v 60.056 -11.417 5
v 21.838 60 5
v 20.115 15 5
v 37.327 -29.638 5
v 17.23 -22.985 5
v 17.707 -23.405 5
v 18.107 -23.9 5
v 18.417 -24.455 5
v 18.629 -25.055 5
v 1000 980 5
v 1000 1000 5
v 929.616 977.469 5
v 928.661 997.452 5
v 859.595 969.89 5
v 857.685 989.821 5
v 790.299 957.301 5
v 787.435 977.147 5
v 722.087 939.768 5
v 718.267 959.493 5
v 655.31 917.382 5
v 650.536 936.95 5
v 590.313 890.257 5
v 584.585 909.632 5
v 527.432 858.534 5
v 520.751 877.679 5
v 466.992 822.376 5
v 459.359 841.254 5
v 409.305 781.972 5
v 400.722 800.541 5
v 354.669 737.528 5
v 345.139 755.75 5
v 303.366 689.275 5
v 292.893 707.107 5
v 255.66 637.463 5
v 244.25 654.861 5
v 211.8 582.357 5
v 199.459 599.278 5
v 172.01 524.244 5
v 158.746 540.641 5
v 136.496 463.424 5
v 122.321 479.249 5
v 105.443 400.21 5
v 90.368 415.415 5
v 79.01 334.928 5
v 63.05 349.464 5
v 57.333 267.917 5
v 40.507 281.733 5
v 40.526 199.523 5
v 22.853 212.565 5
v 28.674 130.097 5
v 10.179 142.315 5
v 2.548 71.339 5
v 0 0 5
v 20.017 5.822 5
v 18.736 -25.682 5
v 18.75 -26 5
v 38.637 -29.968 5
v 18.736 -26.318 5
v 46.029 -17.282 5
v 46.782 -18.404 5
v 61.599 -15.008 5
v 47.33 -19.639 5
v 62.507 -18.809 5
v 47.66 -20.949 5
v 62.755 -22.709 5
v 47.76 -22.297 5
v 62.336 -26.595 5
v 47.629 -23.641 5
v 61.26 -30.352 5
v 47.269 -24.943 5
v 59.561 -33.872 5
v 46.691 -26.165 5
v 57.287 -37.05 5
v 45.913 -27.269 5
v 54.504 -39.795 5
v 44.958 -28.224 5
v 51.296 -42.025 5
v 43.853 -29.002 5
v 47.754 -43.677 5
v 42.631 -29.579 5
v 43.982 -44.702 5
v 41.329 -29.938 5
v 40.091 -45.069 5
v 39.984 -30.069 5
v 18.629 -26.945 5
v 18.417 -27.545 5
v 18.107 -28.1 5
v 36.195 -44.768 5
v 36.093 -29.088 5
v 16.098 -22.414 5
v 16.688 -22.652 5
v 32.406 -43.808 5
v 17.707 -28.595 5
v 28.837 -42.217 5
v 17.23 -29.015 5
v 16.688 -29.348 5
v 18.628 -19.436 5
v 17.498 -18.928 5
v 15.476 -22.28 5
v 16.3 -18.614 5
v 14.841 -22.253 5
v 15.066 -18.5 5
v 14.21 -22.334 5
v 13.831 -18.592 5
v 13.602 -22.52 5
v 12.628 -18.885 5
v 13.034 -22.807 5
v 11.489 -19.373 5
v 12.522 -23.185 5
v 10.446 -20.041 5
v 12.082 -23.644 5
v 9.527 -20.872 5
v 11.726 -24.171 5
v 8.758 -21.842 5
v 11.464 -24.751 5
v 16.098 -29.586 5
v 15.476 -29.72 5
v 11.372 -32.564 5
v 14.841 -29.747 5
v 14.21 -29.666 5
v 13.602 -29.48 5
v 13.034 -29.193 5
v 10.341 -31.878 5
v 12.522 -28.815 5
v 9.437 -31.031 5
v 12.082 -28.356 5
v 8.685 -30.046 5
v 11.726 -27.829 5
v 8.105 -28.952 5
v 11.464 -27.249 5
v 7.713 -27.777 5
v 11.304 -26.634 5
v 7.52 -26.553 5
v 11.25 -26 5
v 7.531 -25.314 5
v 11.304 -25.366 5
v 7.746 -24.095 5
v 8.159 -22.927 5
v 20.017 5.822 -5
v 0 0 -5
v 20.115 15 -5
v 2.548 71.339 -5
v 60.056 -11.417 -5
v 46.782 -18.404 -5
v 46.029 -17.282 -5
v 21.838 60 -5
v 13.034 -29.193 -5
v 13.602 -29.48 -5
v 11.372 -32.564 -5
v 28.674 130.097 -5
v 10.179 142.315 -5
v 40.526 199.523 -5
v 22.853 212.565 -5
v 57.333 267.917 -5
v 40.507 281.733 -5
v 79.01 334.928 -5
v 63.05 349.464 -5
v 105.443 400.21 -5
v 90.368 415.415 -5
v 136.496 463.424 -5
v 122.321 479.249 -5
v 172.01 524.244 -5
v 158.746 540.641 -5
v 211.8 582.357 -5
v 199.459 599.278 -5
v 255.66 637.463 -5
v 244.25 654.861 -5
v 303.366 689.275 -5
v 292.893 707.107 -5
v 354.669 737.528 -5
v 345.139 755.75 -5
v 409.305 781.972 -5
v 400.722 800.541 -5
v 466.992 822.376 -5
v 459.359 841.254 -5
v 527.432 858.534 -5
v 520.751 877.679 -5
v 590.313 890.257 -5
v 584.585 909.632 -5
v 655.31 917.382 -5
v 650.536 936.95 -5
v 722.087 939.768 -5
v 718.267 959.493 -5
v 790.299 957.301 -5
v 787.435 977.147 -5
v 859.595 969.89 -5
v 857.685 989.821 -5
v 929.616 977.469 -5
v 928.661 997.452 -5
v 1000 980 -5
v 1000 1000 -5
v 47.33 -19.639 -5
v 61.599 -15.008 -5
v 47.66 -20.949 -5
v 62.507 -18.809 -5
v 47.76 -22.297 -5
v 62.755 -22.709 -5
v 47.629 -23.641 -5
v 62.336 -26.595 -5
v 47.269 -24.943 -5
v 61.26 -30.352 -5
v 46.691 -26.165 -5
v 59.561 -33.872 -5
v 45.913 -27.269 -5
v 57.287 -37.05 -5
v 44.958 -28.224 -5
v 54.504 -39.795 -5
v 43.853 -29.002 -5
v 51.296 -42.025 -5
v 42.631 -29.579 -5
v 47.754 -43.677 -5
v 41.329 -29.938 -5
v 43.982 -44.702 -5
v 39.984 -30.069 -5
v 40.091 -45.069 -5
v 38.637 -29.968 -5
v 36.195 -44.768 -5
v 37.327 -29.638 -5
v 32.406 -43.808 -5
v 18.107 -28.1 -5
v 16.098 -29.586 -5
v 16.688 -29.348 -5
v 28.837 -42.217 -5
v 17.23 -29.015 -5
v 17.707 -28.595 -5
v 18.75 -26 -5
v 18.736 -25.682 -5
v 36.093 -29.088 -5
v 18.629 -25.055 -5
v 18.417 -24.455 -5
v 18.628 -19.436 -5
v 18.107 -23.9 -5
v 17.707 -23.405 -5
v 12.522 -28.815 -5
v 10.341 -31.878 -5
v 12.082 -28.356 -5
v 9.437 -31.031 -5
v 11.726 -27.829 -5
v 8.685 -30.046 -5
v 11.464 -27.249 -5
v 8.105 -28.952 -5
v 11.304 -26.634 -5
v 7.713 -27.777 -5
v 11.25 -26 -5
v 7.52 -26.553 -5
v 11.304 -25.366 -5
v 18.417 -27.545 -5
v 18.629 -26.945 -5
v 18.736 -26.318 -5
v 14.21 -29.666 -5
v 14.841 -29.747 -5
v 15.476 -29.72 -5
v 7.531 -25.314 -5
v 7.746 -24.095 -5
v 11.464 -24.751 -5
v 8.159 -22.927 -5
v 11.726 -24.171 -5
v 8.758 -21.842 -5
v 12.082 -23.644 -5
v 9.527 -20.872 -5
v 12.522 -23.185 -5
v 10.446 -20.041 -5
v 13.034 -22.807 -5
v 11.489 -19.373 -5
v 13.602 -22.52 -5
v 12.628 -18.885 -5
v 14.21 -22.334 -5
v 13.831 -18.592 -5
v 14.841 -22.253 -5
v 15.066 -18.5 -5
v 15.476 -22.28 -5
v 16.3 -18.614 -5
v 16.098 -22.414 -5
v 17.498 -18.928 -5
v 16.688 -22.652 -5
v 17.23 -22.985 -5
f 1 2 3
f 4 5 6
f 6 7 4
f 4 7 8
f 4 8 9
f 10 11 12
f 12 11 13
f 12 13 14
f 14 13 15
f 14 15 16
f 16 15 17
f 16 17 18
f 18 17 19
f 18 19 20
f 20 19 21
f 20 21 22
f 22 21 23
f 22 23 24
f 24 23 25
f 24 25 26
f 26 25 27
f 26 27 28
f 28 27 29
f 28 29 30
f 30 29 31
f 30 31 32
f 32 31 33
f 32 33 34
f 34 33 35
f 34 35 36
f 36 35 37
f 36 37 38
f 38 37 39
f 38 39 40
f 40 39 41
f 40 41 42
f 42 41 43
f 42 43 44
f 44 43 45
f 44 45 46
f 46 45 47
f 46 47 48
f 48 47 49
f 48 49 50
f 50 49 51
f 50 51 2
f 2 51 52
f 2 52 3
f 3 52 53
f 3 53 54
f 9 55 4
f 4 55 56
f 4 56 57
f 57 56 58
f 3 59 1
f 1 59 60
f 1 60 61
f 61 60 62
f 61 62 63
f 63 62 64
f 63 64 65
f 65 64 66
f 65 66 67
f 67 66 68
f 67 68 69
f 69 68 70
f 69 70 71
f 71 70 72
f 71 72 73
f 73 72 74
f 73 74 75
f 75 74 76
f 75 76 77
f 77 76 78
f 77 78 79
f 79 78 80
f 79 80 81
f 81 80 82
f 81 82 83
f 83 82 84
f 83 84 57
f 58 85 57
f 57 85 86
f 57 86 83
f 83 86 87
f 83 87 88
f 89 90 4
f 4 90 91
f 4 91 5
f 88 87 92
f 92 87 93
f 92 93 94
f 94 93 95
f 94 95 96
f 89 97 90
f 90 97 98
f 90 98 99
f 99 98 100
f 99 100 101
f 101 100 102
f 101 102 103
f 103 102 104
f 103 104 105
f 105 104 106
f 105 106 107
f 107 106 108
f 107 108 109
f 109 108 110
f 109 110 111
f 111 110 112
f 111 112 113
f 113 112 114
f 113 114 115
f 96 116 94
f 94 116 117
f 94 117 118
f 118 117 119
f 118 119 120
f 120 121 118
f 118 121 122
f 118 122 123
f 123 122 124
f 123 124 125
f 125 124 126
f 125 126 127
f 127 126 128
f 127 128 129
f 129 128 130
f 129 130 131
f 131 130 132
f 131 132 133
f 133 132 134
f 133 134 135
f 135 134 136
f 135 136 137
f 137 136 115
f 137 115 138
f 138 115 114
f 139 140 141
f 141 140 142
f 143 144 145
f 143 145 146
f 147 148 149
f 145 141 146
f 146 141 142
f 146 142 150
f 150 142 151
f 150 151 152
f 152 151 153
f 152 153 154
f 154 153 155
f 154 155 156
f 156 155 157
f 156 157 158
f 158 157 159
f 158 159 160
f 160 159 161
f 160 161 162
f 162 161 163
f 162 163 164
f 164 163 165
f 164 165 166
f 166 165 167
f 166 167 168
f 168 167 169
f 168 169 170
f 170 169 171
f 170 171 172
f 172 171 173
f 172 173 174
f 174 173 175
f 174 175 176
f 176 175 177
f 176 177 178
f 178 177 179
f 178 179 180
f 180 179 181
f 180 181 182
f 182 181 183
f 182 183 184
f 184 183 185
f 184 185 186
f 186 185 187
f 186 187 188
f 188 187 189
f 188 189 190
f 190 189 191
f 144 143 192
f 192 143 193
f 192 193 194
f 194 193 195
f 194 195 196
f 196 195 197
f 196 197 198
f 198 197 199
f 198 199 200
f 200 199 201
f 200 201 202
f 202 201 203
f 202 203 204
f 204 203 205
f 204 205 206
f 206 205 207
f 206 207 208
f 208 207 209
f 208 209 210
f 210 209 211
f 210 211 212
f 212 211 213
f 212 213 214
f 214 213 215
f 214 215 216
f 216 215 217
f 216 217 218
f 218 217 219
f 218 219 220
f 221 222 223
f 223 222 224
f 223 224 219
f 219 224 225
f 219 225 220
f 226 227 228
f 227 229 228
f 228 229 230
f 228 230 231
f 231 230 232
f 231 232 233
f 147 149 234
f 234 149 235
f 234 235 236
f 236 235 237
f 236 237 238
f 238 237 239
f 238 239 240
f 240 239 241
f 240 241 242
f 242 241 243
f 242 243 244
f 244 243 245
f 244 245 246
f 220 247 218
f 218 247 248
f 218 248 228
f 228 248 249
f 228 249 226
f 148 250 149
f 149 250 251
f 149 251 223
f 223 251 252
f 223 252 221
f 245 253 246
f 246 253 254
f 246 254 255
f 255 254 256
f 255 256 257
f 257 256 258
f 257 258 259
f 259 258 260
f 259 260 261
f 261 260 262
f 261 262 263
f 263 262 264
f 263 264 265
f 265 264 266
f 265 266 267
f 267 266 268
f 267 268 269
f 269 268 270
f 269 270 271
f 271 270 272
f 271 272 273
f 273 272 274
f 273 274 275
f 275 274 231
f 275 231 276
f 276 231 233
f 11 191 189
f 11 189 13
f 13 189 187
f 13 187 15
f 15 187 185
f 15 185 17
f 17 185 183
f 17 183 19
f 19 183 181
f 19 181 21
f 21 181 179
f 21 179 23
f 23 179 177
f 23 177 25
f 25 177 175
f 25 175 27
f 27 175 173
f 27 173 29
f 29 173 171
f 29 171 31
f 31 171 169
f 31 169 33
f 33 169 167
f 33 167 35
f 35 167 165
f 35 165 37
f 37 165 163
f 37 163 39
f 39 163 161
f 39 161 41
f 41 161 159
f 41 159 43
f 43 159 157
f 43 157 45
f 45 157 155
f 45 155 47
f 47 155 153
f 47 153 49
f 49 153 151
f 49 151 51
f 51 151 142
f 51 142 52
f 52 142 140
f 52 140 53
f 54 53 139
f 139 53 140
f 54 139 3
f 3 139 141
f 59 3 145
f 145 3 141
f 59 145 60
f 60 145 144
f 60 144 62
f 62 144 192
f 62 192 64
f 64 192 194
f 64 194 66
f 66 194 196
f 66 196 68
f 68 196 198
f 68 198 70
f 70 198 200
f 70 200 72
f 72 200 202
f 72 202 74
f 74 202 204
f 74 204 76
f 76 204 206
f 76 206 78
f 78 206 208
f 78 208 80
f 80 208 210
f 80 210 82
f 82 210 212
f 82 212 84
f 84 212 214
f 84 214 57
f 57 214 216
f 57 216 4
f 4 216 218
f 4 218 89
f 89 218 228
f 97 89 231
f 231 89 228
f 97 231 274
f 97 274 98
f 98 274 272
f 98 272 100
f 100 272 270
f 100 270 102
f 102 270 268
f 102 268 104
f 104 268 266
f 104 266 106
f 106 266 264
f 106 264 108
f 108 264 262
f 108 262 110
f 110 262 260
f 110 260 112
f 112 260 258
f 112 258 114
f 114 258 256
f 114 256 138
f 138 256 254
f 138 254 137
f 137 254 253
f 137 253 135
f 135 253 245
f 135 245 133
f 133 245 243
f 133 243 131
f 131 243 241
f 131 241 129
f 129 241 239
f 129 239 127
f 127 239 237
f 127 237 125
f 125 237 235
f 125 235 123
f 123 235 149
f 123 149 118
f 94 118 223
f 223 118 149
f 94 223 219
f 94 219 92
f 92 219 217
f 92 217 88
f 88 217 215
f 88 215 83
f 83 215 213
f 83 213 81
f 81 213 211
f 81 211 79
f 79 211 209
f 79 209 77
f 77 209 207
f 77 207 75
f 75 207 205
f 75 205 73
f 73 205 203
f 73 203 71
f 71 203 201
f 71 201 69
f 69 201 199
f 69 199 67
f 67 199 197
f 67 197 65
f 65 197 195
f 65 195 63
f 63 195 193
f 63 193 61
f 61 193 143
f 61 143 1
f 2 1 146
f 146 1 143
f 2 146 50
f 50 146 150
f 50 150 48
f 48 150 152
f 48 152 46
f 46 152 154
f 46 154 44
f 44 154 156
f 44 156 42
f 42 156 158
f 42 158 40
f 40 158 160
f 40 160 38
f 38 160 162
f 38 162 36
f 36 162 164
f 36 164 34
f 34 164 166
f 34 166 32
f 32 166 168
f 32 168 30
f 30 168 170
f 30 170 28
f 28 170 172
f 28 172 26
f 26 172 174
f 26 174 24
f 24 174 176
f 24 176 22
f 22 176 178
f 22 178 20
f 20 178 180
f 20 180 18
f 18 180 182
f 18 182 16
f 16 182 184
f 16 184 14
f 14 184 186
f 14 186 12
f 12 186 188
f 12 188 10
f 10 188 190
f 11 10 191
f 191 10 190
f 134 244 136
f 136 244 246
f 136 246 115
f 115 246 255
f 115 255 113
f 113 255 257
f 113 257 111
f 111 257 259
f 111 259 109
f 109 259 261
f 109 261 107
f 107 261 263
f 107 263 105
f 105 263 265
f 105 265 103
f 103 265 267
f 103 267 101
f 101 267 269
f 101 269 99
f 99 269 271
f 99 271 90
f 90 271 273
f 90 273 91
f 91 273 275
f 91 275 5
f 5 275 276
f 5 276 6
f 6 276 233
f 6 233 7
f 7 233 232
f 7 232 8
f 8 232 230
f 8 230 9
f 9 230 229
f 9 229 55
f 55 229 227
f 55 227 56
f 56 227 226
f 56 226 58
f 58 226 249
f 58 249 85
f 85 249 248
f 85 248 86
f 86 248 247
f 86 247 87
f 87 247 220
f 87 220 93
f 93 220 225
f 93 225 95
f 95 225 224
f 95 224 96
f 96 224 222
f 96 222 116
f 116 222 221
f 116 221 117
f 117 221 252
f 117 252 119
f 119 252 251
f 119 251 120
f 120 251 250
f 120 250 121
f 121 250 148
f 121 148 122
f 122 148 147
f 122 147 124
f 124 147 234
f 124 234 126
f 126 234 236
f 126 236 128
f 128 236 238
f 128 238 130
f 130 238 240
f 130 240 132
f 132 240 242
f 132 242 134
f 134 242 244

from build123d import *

# Parameters (mm, degrees)
SKETCH5_R           = 3.75
BOSS_EXTRUDE1_DEPTH = 5


with BuildPart() as part:
    # Sketch5 → Boss-Extrude1 (new, symmetric)
    with BuildSketch(Plane.XY):
        with BuildLine():
            Line((1000, 980), (1000, 1000))
            ThreePointArc((1000, 1000), (292.893218813, 707.106781187), (0, 0))
            Line((0, 0), (20.017296358, 5.822418881))
            ThreePointArc((20.017296358, 5.822418881), (20.055305468, 10.411323589), (20.114802643, 15))
            Line((20.114802643, 15), (46.029376088, -17.282126934))
            ThreePointArc((46.029376088, -17.282126934), (45.913408903, -27.269346828), (36.092525555, -29.08820907))
            Line((36.092525555, -29.08820907), (18.627898207, -19.435827958))
            ThreePointArc((18.627898207, -19.435827958), (8.435827958, -22.372101793), (11.372101793, -32.564172042))
            Line((11.372101793, -32.564172042), (28.836729142, -42.216553154))
            ThreePointArc((28.836729142, -42.216553154), (55.954267895, -38.481822572), (60.055964287, -11.417358652))
            Line((60.055964287, -11.417358652), (21.838459149, 60))
            ThreePointArc((21.838459149, 60), (328.583586736, 713.862731903), (1000, 980))
        make_face()
        with Locations((15, -26)):
            Circle(SKETCH5_R, mode=Mode.SUBTRACT)
    extrude(amount=BOSS_EXTRUDE1_DEPTH, both=True)


solid = part.part
